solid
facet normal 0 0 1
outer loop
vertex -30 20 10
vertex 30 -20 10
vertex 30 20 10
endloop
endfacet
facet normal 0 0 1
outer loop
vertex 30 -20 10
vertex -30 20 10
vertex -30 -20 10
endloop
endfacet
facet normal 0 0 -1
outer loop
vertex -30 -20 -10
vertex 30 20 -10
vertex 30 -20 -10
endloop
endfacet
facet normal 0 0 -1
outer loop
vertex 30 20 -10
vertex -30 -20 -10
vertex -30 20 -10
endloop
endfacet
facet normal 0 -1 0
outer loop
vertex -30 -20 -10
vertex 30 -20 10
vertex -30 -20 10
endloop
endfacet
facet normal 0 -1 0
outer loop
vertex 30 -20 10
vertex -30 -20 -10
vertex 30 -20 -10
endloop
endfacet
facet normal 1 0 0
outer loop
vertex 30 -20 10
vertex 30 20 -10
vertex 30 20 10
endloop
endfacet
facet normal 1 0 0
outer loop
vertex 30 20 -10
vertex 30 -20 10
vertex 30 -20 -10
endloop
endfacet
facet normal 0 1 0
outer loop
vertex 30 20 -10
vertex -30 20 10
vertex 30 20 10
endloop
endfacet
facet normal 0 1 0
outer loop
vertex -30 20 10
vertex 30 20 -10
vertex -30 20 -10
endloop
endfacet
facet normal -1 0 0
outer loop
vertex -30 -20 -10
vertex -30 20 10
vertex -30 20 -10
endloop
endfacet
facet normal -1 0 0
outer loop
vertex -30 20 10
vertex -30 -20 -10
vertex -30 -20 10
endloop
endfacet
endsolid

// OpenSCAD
// Define dimensions for the rectangular block
block_length = 60;  // Updated length of the block to match the original model
block_width = 40;   // Updated width of the block to match the original model
block_height = 20;  // Updated height (thickness) of the block to match the original model

// Create the rectangular block
module rectangular_block() {
    cube([block_length, block_width, block_height], center = true);
}

// Adjust the orientation to ensure alignment and symmetry
rotate([0, 0, 0]) {  // Removed any tilt or rotation to match the upright orientation of the original model
    rectangular_block();
}
